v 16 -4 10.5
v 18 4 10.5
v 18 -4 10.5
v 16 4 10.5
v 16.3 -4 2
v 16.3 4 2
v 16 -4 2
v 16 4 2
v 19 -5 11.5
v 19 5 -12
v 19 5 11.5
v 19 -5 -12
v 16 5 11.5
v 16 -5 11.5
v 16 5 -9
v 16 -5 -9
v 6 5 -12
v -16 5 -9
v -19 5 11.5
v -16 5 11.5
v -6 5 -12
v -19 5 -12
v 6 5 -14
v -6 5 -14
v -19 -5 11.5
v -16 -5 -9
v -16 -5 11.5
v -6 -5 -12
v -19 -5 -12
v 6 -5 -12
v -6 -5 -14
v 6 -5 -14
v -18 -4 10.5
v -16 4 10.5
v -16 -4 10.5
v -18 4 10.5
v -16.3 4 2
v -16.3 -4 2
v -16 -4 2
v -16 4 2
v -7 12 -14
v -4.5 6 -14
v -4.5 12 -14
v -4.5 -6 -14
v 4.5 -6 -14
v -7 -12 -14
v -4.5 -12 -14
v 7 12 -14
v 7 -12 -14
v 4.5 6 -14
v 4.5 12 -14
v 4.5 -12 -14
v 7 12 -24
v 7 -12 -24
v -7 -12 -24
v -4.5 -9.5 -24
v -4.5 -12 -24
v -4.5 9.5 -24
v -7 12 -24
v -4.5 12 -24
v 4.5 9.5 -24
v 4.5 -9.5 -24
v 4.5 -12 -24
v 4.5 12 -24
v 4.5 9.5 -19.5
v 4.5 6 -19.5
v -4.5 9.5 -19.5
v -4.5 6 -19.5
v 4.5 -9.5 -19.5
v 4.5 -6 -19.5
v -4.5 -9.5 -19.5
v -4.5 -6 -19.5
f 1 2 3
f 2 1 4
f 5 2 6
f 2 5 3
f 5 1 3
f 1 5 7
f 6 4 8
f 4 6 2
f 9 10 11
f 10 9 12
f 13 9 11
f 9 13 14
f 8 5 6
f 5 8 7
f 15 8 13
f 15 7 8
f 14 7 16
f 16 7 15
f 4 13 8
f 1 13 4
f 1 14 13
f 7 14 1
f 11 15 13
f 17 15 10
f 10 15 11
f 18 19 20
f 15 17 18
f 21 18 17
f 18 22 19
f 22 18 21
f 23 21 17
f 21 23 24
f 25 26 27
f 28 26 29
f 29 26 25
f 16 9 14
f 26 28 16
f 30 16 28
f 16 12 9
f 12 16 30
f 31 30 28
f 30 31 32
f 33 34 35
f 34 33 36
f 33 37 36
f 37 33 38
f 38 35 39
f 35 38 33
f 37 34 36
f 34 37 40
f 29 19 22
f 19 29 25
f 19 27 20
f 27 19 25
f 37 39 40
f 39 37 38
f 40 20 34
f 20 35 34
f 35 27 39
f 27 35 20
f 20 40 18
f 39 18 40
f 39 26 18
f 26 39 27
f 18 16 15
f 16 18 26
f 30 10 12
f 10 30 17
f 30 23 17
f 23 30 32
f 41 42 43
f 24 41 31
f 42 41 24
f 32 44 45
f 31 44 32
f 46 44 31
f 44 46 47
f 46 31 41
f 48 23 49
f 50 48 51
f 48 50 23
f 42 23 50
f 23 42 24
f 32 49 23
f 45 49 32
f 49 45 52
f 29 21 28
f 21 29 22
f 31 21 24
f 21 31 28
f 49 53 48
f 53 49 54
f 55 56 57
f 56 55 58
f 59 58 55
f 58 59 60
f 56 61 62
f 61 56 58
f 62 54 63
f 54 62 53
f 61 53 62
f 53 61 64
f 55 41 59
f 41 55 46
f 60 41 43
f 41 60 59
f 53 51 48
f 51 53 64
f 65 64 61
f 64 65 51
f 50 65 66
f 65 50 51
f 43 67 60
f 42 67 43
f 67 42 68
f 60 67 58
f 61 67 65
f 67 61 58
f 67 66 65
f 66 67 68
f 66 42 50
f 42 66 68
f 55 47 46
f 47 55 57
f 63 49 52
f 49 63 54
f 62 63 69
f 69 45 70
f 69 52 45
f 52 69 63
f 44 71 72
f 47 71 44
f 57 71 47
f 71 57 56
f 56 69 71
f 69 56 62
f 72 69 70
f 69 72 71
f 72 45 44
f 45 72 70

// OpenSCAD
color("red")
  translate([0, 0, -1.5]) {
  difference() {
//      cylinder (r=41/2, h=9, center=true, $fn=128);
//      cylinder (r=37/2, h=10, center=true, $fn=128);
  }
}

 
module inner_bit() {
//    rotate([0, 0, 90]){
    difference() {
        translate([-7, 0, 0]) {
            color("green") {
                cube([14, 24/2, 10]);
            }
        }
            translate([-4.5, 9.5, -1]) {
                cube([9, 5, 12]);
            }
            translate([-4.5, 6, 4.5]) {
                cube([9, 9, 8]);
            }
      }
  //}
 
}

module fork () {
    translate([0,-5,-12]) {
      cube([19, 10, 3]);
    }

    translate([16,-5, -9]) {
      cube([3, 10, 11]);
    }

    translate([0, -5, -14]) {
      cube([6, 10, 2]);
    }
}
fork();

rotate([0, 0, 180]) {
    fork();
}

translate([0, 0, -24]) {
    inner_bit();

    mirror([0, 1, 0]) {
    inner_bit();
    }
}

ClipPoints = [
  [5,  0,  0 ], // 0, outer bottom middle
  [5,  5,  0 ], // 1, outer bottom right
  
  [5,  5,  12], // 2, outer top right
  [5,  0,  12], // 3, outer top middle
  
  [0,  0,  12], // 4, inner top middle
  [0,  5,  12], // 5, inner top right
  
  [0,  5,  0 ], // 6, inner bottom right
  [0,  0,  0 ], // 7, inner bottom middle
  
  [0,  4,  0 ], // 8, inner bottom cliff
  [0,  4,  10], // 9, inner middle cliff
  [0,  0,  10], // 10, inner middle middle

  [2,  4,  10], // 11, deep middle cliff
  [2,  0,  10], // 12, deep middle middle
  
];

WedgeFaces = [
  [8, 7, 12, 11],
  [11, 12, 10, 9],
  [9, 8, 11], 
  [8, 9, 10, 7],
  [10, 12, 7],
];

clip_bit();
mirror([1, 0, 0]) {
  clip_bit();
}

module clip_bit() {
  translate([36/2-2, -5, 2]) {
    color("blue") {
      difference() {
        cube([3, 10, 9.5]);
      translate([-2, 1, -1.5]) {
          wedge();
      }
    }
  }
}

//wedge();

module wedge() {
         union() {
            translate([2, 0, 0]) {    
              polyhedron(ClipPoints, WedgeFaces);
            }
            translate([2, 4, 0]) {    
              polyhedron(ClipPoints, WedgeFaces);
            }
            cube([2, 8, 10]);
          }
        }   
}
